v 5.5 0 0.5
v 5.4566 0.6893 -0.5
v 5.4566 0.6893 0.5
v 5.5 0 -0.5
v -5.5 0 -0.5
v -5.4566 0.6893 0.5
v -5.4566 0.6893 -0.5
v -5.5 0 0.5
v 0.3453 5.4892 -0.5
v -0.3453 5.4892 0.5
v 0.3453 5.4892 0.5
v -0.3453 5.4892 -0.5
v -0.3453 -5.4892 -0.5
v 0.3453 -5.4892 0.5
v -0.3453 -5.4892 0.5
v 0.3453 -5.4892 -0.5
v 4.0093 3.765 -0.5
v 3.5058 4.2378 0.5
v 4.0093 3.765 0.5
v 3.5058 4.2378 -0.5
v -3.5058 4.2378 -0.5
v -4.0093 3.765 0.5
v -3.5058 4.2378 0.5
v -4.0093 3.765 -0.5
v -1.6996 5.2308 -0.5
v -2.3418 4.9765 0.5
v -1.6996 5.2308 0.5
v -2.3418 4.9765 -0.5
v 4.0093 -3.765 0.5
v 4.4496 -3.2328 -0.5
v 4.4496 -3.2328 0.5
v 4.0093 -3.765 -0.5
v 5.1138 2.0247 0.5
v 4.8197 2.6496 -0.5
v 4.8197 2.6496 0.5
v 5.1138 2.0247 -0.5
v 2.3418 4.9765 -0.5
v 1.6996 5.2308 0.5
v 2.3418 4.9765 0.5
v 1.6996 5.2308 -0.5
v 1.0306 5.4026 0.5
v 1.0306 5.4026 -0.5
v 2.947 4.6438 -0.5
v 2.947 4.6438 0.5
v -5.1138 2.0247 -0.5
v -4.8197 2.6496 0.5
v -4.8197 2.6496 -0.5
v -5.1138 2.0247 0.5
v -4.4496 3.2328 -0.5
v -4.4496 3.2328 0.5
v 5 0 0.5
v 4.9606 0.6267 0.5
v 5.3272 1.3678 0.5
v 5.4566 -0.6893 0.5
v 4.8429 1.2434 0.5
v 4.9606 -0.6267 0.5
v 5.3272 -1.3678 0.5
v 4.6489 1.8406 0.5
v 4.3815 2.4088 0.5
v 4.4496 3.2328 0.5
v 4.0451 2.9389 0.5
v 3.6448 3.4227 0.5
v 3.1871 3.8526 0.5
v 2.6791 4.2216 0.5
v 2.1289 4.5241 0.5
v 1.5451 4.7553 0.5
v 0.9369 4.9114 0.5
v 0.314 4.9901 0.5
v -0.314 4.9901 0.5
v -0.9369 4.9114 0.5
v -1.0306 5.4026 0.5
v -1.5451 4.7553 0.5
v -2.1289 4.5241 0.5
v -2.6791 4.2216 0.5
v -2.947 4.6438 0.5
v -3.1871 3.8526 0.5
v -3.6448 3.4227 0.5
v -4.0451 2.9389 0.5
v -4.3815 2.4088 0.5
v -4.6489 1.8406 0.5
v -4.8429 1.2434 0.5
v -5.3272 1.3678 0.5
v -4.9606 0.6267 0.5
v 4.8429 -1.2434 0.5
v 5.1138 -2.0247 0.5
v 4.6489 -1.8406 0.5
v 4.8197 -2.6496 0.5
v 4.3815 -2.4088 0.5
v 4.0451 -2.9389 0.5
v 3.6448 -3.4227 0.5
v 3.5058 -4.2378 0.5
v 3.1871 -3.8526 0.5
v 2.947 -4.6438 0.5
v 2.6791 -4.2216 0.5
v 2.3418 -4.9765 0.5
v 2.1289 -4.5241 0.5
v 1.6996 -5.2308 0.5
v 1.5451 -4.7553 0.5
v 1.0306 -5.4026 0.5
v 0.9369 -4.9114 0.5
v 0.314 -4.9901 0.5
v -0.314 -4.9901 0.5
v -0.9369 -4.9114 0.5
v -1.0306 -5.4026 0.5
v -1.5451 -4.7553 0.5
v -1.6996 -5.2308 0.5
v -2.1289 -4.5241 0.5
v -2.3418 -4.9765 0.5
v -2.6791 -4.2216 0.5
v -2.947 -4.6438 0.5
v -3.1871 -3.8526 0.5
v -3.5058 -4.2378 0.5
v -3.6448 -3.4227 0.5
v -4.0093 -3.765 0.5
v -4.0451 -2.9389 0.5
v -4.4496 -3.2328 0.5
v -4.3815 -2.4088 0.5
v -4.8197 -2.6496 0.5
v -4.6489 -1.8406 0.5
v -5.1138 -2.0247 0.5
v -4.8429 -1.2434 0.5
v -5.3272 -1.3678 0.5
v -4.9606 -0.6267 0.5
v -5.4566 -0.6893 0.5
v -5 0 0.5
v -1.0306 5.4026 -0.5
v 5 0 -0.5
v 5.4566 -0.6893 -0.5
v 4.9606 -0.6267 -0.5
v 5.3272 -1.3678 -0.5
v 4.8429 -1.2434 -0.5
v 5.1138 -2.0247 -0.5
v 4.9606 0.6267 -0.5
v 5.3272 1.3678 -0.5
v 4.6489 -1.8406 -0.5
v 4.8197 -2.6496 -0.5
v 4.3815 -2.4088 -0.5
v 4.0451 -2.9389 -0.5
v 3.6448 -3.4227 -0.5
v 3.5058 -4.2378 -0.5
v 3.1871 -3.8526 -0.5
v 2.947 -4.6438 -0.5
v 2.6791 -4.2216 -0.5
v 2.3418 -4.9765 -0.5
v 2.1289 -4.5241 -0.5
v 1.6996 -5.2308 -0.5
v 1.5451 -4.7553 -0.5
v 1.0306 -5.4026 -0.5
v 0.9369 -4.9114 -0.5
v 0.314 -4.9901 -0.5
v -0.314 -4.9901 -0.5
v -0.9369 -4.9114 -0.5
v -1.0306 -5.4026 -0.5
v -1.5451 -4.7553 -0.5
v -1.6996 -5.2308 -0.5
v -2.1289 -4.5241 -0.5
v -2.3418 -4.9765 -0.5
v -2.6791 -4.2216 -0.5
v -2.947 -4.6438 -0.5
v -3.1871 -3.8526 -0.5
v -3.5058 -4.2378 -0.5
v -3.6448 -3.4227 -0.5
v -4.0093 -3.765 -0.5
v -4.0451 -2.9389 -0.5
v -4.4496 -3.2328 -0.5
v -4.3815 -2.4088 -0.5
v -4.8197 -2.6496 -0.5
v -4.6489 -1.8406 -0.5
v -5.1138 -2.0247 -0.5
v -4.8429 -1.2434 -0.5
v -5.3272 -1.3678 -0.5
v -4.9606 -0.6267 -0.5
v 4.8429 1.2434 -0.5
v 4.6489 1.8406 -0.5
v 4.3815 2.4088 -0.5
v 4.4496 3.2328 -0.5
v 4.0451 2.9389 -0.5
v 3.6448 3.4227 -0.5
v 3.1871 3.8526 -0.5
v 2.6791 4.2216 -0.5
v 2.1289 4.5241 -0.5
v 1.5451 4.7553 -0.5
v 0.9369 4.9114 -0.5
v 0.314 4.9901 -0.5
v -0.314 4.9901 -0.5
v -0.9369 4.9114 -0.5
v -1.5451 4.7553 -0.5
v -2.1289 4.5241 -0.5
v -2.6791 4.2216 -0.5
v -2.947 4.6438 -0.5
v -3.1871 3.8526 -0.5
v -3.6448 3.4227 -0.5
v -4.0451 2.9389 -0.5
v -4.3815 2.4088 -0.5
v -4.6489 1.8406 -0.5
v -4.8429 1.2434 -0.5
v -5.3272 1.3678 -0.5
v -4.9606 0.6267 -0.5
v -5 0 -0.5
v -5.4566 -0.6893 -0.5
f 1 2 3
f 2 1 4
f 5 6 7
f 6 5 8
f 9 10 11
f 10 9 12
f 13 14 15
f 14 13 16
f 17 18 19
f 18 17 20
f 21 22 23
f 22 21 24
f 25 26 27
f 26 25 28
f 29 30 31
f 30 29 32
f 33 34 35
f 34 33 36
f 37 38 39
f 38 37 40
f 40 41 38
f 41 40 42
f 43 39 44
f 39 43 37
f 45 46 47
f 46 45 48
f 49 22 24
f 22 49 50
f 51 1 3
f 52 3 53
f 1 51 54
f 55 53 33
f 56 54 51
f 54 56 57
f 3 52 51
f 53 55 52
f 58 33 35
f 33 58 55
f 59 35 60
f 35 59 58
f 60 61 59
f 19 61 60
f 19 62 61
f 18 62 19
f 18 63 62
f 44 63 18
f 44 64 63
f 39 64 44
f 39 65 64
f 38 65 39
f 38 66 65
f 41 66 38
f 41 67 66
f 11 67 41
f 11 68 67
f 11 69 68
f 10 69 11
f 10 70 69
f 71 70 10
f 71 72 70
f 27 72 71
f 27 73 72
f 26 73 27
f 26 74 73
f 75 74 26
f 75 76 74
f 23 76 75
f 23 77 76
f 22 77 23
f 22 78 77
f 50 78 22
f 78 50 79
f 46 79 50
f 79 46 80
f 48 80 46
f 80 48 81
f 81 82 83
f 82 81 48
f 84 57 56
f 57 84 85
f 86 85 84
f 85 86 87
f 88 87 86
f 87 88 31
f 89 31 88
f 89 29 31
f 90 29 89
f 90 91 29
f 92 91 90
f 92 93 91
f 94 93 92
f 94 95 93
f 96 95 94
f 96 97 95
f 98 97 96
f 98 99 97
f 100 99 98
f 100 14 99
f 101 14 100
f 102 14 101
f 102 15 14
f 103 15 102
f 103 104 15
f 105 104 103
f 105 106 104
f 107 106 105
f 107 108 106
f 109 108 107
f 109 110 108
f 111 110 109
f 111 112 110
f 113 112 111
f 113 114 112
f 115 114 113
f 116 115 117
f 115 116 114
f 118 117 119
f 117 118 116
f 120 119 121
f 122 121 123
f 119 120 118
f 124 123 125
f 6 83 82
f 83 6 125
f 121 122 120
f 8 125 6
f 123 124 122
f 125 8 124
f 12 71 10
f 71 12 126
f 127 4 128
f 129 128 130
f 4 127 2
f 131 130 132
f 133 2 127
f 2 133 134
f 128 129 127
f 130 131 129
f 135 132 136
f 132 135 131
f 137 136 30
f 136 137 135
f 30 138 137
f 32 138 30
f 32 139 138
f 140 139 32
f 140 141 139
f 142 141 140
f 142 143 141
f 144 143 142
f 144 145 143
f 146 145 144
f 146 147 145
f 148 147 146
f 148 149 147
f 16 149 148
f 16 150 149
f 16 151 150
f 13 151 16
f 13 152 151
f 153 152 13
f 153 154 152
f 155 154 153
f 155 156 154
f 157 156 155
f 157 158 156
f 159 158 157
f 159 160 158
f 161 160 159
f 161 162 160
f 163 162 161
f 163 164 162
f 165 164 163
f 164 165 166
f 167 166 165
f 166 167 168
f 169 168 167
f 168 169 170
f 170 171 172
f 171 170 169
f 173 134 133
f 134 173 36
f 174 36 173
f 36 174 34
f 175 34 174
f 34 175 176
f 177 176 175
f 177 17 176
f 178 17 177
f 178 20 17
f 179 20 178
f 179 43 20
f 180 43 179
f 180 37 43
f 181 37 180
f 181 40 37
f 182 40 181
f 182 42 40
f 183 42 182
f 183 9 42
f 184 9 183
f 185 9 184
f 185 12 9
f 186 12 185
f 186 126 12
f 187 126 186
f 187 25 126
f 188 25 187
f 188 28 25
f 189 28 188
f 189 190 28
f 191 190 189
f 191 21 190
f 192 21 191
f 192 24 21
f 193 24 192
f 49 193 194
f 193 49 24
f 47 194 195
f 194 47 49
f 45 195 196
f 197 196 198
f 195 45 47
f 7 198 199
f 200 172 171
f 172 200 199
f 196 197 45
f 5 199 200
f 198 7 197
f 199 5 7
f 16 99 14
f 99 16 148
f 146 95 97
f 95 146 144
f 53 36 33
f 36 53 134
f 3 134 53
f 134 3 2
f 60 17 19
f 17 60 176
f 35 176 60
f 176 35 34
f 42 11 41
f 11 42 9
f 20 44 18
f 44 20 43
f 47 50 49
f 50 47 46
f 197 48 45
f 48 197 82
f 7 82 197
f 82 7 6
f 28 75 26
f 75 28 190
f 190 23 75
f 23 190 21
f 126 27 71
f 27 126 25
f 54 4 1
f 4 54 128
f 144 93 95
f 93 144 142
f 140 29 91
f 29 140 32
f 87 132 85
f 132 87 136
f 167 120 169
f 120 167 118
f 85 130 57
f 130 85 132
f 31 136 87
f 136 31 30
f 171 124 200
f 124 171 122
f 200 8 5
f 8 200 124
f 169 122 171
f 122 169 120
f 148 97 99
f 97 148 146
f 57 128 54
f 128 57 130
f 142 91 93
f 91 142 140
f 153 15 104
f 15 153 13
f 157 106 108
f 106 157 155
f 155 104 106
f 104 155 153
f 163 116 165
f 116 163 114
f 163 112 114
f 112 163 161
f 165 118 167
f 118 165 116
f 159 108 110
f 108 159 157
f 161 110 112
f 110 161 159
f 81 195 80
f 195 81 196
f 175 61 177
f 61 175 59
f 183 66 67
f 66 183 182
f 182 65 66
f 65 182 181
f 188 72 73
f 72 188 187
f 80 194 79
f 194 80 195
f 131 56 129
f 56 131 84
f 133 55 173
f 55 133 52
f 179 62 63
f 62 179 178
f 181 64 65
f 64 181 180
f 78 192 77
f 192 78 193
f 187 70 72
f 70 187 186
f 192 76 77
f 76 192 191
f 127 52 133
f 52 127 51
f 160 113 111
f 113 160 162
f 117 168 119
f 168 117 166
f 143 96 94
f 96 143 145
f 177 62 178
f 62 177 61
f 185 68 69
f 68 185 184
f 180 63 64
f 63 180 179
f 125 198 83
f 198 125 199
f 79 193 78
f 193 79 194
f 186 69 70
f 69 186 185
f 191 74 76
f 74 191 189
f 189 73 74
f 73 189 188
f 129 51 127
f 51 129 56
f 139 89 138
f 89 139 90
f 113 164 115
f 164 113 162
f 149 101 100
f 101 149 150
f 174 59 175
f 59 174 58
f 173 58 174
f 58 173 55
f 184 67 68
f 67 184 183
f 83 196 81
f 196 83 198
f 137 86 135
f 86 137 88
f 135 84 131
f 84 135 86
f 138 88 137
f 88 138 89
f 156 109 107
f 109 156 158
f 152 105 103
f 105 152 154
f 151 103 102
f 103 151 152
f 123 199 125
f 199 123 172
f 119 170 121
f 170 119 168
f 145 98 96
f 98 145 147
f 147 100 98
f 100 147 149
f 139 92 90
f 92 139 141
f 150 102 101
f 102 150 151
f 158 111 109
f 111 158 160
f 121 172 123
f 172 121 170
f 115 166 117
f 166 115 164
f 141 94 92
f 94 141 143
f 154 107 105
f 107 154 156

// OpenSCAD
$fn = 50;


difference() {
	union() {
		translate(v = [0, 0, -0.5000000000]) {
			cylinder(h = 1, r = 5.5000000000);
		}
	}
	union() {
		translate(v = [0, 0, -100.0000000000]) {
			cylinder(h = 200, r = 5);
		}
	}
}
